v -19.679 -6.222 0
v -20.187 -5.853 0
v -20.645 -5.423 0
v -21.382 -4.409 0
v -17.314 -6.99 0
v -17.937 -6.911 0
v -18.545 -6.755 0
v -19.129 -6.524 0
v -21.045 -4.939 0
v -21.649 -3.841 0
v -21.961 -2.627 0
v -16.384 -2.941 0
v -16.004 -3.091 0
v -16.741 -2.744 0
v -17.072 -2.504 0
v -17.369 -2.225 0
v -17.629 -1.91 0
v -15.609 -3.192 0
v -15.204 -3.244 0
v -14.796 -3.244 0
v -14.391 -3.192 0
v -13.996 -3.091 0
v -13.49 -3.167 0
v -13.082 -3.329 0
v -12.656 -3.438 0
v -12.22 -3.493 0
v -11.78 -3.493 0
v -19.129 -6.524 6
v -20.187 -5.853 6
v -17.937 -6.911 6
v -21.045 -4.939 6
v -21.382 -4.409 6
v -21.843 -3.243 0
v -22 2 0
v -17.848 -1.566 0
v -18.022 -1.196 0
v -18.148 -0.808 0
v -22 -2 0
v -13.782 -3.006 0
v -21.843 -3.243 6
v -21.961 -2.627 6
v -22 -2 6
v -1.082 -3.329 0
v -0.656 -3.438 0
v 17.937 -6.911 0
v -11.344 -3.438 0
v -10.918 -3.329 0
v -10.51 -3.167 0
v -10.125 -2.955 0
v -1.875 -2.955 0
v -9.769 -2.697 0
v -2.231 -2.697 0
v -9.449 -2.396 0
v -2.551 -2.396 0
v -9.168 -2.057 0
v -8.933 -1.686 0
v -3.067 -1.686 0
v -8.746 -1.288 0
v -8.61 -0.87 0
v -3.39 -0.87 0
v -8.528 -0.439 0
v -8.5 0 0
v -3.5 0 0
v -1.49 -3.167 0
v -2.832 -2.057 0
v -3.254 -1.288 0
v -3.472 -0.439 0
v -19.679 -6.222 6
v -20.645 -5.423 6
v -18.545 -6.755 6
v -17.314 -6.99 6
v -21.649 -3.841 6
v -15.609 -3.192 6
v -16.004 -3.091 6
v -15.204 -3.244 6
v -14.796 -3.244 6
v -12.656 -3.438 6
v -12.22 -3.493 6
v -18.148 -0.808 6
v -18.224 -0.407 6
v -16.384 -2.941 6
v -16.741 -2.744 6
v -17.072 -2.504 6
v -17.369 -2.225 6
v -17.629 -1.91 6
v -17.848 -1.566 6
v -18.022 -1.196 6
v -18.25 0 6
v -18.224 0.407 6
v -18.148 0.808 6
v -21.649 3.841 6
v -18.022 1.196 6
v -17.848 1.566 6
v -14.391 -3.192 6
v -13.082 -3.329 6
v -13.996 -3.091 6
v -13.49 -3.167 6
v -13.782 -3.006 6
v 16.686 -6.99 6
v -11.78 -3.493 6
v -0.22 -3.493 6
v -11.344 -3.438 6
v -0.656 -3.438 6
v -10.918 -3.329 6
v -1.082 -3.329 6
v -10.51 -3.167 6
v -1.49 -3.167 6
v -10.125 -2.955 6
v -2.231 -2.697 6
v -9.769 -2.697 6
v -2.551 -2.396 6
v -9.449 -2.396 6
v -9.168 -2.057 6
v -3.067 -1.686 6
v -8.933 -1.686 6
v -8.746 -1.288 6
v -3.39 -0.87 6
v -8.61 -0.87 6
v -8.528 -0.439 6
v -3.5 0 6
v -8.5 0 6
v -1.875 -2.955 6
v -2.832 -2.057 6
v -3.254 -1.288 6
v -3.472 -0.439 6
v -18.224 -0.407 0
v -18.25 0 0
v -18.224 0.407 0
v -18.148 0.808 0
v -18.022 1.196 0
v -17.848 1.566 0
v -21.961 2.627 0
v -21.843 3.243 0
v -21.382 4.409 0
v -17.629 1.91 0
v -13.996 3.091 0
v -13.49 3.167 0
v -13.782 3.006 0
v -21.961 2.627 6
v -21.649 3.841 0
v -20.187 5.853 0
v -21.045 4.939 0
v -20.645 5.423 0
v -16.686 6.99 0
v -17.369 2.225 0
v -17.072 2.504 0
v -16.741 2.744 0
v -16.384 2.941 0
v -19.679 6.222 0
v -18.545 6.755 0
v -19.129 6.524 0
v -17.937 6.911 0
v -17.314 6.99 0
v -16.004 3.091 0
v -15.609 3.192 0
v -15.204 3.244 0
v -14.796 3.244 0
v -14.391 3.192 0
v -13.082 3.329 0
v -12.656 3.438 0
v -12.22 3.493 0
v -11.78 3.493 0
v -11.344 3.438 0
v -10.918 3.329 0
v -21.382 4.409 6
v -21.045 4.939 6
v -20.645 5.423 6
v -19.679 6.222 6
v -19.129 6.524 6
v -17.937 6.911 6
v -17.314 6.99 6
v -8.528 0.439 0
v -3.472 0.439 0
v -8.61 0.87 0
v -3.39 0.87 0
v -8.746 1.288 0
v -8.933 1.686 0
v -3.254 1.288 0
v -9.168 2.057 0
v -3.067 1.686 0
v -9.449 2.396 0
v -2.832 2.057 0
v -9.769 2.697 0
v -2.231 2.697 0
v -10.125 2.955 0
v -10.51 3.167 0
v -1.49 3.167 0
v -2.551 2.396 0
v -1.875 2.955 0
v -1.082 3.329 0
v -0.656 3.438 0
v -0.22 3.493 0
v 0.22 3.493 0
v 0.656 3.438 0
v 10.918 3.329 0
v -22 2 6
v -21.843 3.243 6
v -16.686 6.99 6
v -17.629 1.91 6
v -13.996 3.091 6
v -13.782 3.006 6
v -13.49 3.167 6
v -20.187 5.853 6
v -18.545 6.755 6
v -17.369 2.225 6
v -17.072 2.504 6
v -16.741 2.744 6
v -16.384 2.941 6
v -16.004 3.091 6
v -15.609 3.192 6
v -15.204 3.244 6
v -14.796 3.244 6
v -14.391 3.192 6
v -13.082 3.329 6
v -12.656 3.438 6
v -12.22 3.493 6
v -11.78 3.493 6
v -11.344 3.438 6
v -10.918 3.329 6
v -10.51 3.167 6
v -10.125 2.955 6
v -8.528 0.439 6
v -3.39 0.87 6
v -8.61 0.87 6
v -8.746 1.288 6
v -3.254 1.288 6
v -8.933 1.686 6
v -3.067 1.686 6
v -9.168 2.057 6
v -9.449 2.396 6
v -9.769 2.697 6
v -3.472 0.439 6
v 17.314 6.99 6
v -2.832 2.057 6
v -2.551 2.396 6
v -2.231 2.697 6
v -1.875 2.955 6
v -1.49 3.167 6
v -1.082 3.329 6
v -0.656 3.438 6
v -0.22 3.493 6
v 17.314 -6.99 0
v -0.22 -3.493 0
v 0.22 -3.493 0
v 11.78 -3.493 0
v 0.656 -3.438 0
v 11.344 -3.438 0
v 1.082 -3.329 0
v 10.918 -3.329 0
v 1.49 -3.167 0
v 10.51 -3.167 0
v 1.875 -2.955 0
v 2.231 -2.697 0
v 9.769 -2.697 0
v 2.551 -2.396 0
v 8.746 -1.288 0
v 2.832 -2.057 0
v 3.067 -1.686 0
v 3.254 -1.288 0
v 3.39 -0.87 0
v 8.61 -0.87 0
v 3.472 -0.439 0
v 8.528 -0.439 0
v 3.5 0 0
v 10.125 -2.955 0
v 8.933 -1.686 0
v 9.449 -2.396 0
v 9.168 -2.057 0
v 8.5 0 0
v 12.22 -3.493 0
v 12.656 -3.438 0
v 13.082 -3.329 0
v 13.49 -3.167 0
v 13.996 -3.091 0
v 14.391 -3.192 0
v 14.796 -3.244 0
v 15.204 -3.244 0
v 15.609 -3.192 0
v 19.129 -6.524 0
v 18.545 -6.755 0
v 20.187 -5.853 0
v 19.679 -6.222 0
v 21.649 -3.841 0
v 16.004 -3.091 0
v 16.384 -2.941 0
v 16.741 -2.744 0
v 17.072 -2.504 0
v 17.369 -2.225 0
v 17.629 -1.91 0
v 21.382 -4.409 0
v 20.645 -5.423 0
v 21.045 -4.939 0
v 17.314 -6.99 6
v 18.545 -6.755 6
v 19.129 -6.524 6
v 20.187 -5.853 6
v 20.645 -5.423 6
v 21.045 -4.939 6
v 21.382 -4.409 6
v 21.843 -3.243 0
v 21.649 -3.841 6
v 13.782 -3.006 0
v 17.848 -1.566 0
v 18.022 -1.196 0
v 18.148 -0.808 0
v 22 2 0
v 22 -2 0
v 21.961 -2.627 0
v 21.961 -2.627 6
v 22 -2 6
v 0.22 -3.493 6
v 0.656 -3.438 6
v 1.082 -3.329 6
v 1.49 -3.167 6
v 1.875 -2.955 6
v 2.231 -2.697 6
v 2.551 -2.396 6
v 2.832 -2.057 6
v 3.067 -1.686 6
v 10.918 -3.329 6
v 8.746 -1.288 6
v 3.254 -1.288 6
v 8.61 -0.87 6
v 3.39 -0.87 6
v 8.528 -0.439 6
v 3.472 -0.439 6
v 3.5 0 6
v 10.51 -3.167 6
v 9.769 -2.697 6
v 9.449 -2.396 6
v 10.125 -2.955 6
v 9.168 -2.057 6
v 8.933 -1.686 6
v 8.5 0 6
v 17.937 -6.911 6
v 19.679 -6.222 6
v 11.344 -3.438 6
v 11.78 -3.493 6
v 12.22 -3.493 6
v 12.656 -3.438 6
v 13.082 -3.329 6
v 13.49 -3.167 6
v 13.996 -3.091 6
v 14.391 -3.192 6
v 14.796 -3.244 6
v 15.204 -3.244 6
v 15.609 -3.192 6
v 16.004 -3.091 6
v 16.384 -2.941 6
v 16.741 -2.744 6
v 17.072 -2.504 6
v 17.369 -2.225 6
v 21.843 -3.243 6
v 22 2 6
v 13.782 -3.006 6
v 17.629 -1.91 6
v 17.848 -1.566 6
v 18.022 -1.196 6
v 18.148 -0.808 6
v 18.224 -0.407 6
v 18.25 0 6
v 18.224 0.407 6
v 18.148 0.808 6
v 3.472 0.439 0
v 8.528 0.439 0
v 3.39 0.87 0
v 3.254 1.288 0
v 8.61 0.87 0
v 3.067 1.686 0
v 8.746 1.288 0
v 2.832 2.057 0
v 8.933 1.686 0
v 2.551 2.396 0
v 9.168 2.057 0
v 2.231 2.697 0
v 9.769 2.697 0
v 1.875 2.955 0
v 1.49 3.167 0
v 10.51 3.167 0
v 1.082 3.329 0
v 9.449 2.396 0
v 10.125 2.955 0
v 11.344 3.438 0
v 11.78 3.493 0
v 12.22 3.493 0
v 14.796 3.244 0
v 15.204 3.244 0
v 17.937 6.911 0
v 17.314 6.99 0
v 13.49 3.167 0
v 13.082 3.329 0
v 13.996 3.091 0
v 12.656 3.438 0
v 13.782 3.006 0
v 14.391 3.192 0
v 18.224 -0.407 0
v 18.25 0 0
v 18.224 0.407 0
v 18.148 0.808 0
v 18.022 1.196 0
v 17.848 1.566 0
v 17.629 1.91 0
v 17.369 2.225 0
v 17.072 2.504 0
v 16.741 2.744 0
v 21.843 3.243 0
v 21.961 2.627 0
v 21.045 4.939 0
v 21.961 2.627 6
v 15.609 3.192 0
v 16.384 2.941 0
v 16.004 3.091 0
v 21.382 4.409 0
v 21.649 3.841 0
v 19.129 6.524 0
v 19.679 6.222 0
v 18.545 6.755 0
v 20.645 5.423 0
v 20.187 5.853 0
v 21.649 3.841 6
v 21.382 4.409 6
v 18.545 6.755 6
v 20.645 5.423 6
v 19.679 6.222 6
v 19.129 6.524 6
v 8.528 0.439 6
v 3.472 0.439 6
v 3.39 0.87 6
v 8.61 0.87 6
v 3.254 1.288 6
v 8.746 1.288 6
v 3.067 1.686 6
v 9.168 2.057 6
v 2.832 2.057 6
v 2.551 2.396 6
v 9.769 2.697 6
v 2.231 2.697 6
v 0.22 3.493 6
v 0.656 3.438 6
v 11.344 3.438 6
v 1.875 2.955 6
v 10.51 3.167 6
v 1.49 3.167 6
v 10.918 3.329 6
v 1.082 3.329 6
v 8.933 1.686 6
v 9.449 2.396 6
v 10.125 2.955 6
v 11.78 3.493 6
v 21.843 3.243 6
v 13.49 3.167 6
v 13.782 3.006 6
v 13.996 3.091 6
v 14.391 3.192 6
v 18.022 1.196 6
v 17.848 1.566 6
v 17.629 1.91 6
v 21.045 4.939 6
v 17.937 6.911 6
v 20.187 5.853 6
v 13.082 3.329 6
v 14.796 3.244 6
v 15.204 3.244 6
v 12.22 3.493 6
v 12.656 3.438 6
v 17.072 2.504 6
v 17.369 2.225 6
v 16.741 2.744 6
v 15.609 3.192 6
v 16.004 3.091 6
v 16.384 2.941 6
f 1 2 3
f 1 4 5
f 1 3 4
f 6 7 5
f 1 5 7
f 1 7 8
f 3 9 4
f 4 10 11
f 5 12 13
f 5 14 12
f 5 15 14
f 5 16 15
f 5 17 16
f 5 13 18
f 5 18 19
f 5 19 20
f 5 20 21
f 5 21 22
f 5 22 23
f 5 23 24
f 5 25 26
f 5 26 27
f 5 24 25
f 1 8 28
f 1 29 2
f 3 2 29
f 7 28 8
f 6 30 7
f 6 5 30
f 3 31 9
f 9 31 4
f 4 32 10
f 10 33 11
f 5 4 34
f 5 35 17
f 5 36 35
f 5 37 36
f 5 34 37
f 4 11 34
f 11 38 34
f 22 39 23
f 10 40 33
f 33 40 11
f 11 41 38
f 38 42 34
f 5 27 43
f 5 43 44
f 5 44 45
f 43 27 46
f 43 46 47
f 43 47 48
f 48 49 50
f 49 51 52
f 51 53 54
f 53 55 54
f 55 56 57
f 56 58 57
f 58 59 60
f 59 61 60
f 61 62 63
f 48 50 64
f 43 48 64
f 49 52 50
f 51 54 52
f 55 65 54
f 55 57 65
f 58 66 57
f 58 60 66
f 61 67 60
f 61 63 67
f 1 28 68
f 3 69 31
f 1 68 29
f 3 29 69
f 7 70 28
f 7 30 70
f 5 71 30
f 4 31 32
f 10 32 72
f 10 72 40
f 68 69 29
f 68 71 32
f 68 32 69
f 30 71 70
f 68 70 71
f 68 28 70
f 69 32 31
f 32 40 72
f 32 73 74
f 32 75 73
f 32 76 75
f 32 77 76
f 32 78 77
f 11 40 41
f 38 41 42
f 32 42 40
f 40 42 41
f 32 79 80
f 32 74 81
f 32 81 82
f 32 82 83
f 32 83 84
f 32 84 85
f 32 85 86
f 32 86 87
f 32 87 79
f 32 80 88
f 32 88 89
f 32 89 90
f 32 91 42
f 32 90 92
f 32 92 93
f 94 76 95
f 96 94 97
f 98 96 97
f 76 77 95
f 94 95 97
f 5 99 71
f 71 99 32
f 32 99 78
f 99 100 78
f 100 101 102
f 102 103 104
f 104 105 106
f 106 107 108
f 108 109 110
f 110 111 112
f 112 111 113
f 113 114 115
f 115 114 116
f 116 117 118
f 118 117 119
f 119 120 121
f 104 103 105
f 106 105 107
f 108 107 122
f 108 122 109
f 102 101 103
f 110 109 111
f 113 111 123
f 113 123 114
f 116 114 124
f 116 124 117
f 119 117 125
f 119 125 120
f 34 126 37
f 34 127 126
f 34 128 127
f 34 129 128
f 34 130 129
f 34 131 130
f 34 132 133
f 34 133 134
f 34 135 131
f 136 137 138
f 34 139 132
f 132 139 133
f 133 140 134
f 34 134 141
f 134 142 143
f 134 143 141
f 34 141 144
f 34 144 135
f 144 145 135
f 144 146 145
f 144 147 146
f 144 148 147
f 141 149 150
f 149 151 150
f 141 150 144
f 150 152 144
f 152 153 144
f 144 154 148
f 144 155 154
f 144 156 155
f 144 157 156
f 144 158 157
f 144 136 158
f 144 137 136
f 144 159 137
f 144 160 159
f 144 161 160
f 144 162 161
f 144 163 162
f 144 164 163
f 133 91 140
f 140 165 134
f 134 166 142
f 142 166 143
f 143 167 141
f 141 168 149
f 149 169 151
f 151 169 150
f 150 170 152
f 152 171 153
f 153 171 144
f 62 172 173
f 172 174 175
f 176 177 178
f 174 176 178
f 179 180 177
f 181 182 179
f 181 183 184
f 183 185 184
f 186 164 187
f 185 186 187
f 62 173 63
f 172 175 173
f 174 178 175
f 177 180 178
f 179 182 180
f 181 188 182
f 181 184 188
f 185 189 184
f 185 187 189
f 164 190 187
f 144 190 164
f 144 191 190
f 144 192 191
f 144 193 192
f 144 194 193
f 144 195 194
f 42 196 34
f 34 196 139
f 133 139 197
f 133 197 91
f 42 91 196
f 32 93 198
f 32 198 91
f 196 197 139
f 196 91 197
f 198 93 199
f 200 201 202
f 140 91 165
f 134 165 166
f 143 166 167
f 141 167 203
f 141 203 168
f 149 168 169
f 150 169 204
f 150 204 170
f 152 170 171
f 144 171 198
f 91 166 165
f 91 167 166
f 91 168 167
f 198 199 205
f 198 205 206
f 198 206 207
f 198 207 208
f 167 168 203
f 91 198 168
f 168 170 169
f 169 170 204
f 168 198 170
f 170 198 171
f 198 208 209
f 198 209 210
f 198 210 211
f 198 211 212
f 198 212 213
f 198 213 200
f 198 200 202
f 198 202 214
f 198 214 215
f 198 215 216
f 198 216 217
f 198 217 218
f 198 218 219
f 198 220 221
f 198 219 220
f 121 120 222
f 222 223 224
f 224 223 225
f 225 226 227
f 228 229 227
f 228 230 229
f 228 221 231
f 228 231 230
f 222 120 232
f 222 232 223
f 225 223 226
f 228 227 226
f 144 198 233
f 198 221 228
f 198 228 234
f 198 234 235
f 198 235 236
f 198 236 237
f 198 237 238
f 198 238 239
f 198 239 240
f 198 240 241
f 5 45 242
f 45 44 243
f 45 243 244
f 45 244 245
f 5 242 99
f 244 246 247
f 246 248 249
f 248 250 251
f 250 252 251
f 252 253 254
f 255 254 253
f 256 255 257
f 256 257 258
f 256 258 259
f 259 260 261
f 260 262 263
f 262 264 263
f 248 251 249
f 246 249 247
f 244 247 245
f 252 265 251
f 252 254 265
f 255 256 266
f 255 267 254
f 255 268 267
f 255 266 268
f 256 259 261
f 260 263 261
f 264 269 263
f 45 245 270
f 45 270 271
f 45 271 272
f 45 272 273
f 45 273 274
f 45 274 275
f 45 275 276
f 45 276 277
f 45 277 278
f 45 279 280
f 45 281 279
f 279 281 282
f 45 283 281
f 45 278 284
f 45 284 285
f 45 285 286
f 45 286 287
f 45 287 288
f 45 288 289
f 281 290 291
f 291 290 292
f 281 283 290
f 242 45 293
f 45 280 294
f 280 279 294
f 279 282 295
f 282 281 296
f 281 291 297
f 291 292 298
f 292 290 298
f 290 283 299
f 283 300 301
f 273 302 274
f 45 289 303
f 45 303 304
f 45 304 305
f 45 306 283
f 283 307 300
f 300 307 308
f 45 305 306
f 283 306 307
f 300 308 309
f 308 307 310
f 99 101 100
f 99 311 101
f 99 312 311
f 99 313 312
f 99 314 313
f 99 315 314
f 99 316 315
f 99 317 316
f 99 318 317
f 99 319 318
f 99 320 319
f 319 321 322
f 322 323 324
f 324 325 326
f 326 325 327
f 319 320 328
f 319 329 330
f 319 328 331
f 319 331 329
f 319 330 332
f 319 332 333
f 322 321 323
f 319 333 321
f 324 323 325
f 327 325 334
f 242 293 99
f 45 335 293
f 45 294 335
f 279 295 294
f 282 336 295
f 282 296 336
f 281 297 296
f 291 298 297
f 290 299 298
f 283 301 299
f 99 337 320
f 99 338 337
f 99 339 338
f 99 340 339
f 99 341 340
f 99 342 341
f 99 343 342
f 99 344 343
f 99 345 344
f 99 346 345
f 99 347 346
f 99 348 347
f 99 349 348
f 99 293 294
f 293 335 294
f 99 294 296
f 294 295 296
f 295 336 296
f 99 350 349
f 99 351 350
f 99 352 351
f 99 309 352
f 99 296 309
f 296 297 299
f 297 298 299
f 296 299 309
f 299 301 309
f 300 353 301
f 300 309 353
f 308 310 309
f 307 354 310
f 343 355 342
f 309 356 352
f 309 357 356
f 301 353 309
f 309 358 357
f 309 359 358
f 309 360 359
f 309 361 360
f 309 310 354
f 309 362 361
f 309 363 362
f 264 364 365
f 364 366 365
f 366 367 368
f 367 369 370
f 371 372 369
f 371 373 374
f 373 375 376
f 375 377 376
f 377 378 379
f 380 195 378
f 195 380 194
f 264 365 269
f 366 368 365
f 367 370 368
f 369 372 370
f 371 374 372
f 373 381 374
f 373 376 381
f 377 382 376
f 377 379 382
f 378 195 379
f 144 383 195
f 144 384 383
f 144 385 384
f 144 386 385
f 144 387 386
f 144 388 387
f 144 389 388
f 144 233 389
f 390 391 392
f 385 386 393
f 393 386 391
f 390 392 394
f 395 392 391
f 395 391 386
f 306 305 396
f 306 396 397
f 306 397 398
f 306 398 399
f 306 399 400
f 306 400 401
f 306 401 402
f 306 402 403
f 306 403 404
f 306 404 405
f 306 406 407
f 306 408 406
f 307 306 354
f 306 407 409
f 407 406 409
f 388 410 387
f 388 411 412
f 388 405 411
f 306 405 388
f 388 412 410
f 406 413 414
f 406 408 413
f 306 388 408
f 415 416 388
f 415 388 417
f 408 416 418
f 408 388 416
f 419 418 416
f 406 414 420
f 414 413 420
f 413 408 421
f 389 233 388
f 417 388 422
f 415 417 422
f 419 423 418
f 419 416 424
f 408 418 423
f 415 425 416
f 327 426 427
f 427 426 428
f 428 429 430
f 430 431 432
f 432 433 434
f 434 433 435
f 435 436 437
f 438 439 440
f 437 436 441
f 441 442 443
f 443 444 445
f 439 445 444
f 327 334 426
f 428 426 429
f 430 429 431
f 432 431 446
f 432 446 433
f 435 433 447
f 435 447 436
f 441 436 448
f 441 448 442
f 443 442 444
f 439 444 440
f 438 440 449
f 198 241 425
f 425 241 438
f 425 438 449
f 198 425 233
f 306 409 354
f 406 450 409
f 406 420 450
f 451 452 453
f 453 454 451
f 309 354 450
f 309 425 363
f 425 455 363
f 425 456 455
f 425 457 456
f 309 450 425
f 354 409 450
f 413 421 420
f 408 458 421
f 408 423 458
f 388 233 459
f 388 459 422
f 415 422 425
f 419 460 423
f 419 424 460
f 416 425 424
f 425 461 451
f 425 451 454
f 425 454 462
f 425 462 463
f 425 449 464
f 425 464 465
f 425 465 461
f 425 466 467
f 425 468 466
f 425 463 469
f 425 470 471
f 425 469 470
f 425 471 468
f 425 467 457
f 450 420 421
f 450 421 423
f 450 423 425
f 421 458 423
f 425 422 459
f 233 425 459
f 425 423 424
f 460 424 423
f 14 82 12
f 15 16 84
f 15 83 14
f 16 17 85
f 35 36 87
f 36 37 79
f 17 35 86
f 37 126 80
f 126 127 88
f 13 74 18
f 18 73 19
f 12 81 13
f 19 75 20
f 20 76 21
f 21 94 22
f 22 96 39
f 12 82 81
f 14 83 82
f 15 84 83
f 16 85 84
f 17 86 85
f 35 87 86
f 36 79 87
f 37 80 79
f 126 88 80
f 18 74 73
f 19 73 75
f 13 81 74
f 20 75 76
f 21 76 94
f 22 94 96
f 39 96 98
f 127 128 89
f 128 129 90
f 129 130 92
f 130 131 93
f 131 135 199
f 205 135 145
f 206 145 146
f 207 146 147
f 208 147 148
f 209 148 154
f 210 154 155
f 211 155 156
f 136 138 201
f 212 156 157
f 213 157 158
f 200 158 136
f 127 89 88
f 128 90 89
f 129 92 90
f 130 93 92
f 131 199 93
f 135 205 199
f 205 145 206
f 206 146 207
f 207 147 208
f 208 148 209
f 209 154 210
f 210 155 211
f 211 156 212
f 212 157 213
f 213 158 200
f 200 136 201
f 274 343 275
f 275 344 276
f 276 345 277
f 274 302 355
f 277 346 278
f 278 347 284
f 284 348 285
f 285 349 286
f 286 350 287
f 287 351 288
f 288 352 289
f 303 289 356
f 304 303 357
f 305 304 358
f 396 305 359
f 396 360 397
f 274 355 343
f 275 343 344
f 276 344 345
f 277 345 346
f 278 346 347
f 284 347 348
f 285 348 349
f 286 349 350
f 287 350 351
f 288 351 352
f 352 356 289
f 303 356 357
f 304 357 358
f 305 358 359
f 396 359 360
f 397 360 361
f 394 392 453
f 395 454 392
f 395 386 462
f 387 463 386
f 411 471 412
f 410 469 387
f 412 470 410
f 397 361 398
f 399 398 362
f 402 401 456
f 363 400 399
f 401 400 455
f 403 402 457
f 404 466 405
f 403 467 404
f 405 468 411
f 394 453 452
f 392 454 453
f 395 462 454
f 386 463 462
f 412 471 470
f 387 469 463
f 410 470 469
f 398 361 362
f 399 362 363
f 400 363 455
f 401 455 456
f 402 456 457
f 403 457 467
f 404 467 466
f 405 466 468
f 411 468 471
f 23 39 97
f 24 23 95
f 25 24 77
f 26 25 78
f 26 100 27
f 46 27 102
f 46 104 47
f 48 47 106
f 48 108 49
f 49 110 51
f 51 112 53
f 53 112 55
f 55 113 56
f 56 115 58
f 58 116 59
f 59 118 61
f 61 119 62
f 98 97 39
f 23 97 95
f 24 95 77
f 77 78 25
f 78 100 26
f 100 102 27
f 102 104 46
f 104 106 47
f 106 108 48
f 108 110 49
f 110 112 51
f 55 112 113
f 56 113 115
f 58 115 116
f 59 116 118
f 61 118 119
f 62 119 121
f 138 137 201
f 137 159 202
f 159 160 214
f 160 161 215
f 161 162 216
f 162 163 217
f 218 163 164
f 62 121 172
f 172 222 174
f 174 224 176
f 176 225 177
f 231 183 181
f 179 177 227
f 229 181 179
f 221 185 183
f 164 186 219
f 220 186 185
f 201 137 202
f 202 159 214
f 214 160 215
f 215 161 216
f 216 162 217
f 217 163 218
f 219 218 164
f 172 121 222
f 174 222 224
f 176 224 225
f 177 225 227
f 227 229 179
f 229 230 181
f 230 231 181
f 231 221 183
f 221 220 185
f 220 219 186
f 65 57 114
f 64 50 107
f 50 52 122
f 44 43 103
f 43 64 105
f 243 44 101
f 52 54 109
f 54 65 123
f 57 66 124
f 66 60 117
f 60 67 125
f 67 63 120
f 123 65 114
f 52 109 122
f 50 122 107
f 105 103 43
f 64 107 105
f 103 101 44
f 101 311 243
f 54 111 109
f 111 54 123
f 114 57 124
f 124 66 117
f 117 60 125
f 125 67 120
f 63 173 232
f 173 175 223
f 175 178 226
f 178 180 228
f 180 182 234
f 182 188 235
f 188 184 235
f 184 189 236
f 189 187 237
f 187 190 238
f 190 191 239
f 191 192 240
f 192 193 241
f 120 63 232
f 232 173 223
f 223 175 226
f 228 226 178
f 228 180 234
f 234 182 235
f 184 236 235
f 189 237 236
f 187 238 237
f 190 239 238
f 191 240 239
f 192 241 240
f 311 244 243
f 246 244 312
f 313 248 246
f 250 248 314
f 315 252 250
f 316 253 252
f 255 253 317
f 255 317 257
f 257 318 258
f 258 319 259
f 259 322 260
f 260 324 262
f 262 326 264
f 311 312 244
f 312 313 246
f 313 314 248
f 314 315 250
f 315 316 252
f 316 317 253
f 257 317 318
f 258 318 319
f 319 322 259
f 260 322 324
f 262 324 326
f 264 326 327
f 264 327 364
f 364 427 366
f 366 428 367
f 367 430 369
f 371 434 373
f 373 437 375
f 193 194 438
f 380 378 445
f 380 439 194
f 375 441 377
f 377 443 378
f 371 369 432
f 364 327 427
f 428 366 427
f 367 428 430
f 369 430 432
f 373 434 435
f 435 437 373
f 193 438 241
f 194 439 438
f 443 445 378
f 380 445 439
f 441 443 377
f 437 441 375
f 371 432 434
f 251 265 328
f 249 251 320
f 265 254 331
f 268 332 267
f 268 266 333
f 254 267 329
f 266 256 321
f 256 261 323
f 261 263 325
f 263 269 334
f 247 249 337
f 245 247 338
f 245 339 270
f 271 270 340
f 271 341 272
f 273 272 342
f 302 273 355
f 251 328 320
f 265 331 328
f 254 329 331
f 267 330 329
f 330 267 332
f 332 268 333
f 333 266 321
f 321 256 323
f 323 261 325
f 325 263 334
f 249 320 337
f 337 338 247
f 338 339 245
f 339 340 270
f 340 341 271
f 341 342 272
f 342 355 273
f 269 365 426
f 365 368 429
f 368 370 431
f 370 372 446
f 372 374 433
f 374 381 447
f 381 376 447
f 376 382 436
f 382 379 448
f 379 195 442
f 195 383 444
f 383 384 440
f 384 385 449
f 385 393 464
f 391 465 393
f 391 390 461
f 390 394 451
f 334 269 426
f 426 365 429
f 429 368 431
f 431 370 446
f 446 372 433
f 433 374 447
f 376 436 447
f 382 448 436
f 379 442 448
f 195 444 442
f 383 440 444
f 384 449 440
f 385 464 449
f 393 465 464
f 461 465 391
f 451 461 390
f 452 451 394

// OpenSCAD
$fn = 50;

difference() {
	union() {
		hull() {
			translate(v = [-17.0, 2.0, 0]) {
				cylinder(h = 6, r = 5);
			}
			translate(v = [17.0, 2.0, 0]) {
				cylinder(h = 6, r = 5);
			}
			translate(v = [-17.0, -2.0, 0]) {
				cylinder(h = 6, r = 5);
			}
			translate(v = [17.0, -2.0, 0]) {
				cylinder(h = 6, r = 5);
			}
		}
	}
	union() {
		translate(v = [-15.0, 0.0, -100.0]) {
			cylinder(h = 200, r = 3.25);
		}
		translate(v = [15.0, 0.0, -100.0]) {
			cylinder(h = 200, r = 3.25);
		}
		translate(v = [-15.0, 0.0, -100.0]) {
			cylinder(h = 200, r = 1.8);
		}
		translate(v = [15.0, 0.0, -100.0]) {
			cylinder(h = 200, r = 1.8);
		}
		translate(v = [-12.0, 0, 0.0]) {
			cylinder(h = 6, r = 3.5);
		}
		cylinder(h = 6, r = 3.5);
		translate(v = [12.0, 0, 0.0]) {
			cylinder(h = 6, r = 3.5);
		}
	}
}
